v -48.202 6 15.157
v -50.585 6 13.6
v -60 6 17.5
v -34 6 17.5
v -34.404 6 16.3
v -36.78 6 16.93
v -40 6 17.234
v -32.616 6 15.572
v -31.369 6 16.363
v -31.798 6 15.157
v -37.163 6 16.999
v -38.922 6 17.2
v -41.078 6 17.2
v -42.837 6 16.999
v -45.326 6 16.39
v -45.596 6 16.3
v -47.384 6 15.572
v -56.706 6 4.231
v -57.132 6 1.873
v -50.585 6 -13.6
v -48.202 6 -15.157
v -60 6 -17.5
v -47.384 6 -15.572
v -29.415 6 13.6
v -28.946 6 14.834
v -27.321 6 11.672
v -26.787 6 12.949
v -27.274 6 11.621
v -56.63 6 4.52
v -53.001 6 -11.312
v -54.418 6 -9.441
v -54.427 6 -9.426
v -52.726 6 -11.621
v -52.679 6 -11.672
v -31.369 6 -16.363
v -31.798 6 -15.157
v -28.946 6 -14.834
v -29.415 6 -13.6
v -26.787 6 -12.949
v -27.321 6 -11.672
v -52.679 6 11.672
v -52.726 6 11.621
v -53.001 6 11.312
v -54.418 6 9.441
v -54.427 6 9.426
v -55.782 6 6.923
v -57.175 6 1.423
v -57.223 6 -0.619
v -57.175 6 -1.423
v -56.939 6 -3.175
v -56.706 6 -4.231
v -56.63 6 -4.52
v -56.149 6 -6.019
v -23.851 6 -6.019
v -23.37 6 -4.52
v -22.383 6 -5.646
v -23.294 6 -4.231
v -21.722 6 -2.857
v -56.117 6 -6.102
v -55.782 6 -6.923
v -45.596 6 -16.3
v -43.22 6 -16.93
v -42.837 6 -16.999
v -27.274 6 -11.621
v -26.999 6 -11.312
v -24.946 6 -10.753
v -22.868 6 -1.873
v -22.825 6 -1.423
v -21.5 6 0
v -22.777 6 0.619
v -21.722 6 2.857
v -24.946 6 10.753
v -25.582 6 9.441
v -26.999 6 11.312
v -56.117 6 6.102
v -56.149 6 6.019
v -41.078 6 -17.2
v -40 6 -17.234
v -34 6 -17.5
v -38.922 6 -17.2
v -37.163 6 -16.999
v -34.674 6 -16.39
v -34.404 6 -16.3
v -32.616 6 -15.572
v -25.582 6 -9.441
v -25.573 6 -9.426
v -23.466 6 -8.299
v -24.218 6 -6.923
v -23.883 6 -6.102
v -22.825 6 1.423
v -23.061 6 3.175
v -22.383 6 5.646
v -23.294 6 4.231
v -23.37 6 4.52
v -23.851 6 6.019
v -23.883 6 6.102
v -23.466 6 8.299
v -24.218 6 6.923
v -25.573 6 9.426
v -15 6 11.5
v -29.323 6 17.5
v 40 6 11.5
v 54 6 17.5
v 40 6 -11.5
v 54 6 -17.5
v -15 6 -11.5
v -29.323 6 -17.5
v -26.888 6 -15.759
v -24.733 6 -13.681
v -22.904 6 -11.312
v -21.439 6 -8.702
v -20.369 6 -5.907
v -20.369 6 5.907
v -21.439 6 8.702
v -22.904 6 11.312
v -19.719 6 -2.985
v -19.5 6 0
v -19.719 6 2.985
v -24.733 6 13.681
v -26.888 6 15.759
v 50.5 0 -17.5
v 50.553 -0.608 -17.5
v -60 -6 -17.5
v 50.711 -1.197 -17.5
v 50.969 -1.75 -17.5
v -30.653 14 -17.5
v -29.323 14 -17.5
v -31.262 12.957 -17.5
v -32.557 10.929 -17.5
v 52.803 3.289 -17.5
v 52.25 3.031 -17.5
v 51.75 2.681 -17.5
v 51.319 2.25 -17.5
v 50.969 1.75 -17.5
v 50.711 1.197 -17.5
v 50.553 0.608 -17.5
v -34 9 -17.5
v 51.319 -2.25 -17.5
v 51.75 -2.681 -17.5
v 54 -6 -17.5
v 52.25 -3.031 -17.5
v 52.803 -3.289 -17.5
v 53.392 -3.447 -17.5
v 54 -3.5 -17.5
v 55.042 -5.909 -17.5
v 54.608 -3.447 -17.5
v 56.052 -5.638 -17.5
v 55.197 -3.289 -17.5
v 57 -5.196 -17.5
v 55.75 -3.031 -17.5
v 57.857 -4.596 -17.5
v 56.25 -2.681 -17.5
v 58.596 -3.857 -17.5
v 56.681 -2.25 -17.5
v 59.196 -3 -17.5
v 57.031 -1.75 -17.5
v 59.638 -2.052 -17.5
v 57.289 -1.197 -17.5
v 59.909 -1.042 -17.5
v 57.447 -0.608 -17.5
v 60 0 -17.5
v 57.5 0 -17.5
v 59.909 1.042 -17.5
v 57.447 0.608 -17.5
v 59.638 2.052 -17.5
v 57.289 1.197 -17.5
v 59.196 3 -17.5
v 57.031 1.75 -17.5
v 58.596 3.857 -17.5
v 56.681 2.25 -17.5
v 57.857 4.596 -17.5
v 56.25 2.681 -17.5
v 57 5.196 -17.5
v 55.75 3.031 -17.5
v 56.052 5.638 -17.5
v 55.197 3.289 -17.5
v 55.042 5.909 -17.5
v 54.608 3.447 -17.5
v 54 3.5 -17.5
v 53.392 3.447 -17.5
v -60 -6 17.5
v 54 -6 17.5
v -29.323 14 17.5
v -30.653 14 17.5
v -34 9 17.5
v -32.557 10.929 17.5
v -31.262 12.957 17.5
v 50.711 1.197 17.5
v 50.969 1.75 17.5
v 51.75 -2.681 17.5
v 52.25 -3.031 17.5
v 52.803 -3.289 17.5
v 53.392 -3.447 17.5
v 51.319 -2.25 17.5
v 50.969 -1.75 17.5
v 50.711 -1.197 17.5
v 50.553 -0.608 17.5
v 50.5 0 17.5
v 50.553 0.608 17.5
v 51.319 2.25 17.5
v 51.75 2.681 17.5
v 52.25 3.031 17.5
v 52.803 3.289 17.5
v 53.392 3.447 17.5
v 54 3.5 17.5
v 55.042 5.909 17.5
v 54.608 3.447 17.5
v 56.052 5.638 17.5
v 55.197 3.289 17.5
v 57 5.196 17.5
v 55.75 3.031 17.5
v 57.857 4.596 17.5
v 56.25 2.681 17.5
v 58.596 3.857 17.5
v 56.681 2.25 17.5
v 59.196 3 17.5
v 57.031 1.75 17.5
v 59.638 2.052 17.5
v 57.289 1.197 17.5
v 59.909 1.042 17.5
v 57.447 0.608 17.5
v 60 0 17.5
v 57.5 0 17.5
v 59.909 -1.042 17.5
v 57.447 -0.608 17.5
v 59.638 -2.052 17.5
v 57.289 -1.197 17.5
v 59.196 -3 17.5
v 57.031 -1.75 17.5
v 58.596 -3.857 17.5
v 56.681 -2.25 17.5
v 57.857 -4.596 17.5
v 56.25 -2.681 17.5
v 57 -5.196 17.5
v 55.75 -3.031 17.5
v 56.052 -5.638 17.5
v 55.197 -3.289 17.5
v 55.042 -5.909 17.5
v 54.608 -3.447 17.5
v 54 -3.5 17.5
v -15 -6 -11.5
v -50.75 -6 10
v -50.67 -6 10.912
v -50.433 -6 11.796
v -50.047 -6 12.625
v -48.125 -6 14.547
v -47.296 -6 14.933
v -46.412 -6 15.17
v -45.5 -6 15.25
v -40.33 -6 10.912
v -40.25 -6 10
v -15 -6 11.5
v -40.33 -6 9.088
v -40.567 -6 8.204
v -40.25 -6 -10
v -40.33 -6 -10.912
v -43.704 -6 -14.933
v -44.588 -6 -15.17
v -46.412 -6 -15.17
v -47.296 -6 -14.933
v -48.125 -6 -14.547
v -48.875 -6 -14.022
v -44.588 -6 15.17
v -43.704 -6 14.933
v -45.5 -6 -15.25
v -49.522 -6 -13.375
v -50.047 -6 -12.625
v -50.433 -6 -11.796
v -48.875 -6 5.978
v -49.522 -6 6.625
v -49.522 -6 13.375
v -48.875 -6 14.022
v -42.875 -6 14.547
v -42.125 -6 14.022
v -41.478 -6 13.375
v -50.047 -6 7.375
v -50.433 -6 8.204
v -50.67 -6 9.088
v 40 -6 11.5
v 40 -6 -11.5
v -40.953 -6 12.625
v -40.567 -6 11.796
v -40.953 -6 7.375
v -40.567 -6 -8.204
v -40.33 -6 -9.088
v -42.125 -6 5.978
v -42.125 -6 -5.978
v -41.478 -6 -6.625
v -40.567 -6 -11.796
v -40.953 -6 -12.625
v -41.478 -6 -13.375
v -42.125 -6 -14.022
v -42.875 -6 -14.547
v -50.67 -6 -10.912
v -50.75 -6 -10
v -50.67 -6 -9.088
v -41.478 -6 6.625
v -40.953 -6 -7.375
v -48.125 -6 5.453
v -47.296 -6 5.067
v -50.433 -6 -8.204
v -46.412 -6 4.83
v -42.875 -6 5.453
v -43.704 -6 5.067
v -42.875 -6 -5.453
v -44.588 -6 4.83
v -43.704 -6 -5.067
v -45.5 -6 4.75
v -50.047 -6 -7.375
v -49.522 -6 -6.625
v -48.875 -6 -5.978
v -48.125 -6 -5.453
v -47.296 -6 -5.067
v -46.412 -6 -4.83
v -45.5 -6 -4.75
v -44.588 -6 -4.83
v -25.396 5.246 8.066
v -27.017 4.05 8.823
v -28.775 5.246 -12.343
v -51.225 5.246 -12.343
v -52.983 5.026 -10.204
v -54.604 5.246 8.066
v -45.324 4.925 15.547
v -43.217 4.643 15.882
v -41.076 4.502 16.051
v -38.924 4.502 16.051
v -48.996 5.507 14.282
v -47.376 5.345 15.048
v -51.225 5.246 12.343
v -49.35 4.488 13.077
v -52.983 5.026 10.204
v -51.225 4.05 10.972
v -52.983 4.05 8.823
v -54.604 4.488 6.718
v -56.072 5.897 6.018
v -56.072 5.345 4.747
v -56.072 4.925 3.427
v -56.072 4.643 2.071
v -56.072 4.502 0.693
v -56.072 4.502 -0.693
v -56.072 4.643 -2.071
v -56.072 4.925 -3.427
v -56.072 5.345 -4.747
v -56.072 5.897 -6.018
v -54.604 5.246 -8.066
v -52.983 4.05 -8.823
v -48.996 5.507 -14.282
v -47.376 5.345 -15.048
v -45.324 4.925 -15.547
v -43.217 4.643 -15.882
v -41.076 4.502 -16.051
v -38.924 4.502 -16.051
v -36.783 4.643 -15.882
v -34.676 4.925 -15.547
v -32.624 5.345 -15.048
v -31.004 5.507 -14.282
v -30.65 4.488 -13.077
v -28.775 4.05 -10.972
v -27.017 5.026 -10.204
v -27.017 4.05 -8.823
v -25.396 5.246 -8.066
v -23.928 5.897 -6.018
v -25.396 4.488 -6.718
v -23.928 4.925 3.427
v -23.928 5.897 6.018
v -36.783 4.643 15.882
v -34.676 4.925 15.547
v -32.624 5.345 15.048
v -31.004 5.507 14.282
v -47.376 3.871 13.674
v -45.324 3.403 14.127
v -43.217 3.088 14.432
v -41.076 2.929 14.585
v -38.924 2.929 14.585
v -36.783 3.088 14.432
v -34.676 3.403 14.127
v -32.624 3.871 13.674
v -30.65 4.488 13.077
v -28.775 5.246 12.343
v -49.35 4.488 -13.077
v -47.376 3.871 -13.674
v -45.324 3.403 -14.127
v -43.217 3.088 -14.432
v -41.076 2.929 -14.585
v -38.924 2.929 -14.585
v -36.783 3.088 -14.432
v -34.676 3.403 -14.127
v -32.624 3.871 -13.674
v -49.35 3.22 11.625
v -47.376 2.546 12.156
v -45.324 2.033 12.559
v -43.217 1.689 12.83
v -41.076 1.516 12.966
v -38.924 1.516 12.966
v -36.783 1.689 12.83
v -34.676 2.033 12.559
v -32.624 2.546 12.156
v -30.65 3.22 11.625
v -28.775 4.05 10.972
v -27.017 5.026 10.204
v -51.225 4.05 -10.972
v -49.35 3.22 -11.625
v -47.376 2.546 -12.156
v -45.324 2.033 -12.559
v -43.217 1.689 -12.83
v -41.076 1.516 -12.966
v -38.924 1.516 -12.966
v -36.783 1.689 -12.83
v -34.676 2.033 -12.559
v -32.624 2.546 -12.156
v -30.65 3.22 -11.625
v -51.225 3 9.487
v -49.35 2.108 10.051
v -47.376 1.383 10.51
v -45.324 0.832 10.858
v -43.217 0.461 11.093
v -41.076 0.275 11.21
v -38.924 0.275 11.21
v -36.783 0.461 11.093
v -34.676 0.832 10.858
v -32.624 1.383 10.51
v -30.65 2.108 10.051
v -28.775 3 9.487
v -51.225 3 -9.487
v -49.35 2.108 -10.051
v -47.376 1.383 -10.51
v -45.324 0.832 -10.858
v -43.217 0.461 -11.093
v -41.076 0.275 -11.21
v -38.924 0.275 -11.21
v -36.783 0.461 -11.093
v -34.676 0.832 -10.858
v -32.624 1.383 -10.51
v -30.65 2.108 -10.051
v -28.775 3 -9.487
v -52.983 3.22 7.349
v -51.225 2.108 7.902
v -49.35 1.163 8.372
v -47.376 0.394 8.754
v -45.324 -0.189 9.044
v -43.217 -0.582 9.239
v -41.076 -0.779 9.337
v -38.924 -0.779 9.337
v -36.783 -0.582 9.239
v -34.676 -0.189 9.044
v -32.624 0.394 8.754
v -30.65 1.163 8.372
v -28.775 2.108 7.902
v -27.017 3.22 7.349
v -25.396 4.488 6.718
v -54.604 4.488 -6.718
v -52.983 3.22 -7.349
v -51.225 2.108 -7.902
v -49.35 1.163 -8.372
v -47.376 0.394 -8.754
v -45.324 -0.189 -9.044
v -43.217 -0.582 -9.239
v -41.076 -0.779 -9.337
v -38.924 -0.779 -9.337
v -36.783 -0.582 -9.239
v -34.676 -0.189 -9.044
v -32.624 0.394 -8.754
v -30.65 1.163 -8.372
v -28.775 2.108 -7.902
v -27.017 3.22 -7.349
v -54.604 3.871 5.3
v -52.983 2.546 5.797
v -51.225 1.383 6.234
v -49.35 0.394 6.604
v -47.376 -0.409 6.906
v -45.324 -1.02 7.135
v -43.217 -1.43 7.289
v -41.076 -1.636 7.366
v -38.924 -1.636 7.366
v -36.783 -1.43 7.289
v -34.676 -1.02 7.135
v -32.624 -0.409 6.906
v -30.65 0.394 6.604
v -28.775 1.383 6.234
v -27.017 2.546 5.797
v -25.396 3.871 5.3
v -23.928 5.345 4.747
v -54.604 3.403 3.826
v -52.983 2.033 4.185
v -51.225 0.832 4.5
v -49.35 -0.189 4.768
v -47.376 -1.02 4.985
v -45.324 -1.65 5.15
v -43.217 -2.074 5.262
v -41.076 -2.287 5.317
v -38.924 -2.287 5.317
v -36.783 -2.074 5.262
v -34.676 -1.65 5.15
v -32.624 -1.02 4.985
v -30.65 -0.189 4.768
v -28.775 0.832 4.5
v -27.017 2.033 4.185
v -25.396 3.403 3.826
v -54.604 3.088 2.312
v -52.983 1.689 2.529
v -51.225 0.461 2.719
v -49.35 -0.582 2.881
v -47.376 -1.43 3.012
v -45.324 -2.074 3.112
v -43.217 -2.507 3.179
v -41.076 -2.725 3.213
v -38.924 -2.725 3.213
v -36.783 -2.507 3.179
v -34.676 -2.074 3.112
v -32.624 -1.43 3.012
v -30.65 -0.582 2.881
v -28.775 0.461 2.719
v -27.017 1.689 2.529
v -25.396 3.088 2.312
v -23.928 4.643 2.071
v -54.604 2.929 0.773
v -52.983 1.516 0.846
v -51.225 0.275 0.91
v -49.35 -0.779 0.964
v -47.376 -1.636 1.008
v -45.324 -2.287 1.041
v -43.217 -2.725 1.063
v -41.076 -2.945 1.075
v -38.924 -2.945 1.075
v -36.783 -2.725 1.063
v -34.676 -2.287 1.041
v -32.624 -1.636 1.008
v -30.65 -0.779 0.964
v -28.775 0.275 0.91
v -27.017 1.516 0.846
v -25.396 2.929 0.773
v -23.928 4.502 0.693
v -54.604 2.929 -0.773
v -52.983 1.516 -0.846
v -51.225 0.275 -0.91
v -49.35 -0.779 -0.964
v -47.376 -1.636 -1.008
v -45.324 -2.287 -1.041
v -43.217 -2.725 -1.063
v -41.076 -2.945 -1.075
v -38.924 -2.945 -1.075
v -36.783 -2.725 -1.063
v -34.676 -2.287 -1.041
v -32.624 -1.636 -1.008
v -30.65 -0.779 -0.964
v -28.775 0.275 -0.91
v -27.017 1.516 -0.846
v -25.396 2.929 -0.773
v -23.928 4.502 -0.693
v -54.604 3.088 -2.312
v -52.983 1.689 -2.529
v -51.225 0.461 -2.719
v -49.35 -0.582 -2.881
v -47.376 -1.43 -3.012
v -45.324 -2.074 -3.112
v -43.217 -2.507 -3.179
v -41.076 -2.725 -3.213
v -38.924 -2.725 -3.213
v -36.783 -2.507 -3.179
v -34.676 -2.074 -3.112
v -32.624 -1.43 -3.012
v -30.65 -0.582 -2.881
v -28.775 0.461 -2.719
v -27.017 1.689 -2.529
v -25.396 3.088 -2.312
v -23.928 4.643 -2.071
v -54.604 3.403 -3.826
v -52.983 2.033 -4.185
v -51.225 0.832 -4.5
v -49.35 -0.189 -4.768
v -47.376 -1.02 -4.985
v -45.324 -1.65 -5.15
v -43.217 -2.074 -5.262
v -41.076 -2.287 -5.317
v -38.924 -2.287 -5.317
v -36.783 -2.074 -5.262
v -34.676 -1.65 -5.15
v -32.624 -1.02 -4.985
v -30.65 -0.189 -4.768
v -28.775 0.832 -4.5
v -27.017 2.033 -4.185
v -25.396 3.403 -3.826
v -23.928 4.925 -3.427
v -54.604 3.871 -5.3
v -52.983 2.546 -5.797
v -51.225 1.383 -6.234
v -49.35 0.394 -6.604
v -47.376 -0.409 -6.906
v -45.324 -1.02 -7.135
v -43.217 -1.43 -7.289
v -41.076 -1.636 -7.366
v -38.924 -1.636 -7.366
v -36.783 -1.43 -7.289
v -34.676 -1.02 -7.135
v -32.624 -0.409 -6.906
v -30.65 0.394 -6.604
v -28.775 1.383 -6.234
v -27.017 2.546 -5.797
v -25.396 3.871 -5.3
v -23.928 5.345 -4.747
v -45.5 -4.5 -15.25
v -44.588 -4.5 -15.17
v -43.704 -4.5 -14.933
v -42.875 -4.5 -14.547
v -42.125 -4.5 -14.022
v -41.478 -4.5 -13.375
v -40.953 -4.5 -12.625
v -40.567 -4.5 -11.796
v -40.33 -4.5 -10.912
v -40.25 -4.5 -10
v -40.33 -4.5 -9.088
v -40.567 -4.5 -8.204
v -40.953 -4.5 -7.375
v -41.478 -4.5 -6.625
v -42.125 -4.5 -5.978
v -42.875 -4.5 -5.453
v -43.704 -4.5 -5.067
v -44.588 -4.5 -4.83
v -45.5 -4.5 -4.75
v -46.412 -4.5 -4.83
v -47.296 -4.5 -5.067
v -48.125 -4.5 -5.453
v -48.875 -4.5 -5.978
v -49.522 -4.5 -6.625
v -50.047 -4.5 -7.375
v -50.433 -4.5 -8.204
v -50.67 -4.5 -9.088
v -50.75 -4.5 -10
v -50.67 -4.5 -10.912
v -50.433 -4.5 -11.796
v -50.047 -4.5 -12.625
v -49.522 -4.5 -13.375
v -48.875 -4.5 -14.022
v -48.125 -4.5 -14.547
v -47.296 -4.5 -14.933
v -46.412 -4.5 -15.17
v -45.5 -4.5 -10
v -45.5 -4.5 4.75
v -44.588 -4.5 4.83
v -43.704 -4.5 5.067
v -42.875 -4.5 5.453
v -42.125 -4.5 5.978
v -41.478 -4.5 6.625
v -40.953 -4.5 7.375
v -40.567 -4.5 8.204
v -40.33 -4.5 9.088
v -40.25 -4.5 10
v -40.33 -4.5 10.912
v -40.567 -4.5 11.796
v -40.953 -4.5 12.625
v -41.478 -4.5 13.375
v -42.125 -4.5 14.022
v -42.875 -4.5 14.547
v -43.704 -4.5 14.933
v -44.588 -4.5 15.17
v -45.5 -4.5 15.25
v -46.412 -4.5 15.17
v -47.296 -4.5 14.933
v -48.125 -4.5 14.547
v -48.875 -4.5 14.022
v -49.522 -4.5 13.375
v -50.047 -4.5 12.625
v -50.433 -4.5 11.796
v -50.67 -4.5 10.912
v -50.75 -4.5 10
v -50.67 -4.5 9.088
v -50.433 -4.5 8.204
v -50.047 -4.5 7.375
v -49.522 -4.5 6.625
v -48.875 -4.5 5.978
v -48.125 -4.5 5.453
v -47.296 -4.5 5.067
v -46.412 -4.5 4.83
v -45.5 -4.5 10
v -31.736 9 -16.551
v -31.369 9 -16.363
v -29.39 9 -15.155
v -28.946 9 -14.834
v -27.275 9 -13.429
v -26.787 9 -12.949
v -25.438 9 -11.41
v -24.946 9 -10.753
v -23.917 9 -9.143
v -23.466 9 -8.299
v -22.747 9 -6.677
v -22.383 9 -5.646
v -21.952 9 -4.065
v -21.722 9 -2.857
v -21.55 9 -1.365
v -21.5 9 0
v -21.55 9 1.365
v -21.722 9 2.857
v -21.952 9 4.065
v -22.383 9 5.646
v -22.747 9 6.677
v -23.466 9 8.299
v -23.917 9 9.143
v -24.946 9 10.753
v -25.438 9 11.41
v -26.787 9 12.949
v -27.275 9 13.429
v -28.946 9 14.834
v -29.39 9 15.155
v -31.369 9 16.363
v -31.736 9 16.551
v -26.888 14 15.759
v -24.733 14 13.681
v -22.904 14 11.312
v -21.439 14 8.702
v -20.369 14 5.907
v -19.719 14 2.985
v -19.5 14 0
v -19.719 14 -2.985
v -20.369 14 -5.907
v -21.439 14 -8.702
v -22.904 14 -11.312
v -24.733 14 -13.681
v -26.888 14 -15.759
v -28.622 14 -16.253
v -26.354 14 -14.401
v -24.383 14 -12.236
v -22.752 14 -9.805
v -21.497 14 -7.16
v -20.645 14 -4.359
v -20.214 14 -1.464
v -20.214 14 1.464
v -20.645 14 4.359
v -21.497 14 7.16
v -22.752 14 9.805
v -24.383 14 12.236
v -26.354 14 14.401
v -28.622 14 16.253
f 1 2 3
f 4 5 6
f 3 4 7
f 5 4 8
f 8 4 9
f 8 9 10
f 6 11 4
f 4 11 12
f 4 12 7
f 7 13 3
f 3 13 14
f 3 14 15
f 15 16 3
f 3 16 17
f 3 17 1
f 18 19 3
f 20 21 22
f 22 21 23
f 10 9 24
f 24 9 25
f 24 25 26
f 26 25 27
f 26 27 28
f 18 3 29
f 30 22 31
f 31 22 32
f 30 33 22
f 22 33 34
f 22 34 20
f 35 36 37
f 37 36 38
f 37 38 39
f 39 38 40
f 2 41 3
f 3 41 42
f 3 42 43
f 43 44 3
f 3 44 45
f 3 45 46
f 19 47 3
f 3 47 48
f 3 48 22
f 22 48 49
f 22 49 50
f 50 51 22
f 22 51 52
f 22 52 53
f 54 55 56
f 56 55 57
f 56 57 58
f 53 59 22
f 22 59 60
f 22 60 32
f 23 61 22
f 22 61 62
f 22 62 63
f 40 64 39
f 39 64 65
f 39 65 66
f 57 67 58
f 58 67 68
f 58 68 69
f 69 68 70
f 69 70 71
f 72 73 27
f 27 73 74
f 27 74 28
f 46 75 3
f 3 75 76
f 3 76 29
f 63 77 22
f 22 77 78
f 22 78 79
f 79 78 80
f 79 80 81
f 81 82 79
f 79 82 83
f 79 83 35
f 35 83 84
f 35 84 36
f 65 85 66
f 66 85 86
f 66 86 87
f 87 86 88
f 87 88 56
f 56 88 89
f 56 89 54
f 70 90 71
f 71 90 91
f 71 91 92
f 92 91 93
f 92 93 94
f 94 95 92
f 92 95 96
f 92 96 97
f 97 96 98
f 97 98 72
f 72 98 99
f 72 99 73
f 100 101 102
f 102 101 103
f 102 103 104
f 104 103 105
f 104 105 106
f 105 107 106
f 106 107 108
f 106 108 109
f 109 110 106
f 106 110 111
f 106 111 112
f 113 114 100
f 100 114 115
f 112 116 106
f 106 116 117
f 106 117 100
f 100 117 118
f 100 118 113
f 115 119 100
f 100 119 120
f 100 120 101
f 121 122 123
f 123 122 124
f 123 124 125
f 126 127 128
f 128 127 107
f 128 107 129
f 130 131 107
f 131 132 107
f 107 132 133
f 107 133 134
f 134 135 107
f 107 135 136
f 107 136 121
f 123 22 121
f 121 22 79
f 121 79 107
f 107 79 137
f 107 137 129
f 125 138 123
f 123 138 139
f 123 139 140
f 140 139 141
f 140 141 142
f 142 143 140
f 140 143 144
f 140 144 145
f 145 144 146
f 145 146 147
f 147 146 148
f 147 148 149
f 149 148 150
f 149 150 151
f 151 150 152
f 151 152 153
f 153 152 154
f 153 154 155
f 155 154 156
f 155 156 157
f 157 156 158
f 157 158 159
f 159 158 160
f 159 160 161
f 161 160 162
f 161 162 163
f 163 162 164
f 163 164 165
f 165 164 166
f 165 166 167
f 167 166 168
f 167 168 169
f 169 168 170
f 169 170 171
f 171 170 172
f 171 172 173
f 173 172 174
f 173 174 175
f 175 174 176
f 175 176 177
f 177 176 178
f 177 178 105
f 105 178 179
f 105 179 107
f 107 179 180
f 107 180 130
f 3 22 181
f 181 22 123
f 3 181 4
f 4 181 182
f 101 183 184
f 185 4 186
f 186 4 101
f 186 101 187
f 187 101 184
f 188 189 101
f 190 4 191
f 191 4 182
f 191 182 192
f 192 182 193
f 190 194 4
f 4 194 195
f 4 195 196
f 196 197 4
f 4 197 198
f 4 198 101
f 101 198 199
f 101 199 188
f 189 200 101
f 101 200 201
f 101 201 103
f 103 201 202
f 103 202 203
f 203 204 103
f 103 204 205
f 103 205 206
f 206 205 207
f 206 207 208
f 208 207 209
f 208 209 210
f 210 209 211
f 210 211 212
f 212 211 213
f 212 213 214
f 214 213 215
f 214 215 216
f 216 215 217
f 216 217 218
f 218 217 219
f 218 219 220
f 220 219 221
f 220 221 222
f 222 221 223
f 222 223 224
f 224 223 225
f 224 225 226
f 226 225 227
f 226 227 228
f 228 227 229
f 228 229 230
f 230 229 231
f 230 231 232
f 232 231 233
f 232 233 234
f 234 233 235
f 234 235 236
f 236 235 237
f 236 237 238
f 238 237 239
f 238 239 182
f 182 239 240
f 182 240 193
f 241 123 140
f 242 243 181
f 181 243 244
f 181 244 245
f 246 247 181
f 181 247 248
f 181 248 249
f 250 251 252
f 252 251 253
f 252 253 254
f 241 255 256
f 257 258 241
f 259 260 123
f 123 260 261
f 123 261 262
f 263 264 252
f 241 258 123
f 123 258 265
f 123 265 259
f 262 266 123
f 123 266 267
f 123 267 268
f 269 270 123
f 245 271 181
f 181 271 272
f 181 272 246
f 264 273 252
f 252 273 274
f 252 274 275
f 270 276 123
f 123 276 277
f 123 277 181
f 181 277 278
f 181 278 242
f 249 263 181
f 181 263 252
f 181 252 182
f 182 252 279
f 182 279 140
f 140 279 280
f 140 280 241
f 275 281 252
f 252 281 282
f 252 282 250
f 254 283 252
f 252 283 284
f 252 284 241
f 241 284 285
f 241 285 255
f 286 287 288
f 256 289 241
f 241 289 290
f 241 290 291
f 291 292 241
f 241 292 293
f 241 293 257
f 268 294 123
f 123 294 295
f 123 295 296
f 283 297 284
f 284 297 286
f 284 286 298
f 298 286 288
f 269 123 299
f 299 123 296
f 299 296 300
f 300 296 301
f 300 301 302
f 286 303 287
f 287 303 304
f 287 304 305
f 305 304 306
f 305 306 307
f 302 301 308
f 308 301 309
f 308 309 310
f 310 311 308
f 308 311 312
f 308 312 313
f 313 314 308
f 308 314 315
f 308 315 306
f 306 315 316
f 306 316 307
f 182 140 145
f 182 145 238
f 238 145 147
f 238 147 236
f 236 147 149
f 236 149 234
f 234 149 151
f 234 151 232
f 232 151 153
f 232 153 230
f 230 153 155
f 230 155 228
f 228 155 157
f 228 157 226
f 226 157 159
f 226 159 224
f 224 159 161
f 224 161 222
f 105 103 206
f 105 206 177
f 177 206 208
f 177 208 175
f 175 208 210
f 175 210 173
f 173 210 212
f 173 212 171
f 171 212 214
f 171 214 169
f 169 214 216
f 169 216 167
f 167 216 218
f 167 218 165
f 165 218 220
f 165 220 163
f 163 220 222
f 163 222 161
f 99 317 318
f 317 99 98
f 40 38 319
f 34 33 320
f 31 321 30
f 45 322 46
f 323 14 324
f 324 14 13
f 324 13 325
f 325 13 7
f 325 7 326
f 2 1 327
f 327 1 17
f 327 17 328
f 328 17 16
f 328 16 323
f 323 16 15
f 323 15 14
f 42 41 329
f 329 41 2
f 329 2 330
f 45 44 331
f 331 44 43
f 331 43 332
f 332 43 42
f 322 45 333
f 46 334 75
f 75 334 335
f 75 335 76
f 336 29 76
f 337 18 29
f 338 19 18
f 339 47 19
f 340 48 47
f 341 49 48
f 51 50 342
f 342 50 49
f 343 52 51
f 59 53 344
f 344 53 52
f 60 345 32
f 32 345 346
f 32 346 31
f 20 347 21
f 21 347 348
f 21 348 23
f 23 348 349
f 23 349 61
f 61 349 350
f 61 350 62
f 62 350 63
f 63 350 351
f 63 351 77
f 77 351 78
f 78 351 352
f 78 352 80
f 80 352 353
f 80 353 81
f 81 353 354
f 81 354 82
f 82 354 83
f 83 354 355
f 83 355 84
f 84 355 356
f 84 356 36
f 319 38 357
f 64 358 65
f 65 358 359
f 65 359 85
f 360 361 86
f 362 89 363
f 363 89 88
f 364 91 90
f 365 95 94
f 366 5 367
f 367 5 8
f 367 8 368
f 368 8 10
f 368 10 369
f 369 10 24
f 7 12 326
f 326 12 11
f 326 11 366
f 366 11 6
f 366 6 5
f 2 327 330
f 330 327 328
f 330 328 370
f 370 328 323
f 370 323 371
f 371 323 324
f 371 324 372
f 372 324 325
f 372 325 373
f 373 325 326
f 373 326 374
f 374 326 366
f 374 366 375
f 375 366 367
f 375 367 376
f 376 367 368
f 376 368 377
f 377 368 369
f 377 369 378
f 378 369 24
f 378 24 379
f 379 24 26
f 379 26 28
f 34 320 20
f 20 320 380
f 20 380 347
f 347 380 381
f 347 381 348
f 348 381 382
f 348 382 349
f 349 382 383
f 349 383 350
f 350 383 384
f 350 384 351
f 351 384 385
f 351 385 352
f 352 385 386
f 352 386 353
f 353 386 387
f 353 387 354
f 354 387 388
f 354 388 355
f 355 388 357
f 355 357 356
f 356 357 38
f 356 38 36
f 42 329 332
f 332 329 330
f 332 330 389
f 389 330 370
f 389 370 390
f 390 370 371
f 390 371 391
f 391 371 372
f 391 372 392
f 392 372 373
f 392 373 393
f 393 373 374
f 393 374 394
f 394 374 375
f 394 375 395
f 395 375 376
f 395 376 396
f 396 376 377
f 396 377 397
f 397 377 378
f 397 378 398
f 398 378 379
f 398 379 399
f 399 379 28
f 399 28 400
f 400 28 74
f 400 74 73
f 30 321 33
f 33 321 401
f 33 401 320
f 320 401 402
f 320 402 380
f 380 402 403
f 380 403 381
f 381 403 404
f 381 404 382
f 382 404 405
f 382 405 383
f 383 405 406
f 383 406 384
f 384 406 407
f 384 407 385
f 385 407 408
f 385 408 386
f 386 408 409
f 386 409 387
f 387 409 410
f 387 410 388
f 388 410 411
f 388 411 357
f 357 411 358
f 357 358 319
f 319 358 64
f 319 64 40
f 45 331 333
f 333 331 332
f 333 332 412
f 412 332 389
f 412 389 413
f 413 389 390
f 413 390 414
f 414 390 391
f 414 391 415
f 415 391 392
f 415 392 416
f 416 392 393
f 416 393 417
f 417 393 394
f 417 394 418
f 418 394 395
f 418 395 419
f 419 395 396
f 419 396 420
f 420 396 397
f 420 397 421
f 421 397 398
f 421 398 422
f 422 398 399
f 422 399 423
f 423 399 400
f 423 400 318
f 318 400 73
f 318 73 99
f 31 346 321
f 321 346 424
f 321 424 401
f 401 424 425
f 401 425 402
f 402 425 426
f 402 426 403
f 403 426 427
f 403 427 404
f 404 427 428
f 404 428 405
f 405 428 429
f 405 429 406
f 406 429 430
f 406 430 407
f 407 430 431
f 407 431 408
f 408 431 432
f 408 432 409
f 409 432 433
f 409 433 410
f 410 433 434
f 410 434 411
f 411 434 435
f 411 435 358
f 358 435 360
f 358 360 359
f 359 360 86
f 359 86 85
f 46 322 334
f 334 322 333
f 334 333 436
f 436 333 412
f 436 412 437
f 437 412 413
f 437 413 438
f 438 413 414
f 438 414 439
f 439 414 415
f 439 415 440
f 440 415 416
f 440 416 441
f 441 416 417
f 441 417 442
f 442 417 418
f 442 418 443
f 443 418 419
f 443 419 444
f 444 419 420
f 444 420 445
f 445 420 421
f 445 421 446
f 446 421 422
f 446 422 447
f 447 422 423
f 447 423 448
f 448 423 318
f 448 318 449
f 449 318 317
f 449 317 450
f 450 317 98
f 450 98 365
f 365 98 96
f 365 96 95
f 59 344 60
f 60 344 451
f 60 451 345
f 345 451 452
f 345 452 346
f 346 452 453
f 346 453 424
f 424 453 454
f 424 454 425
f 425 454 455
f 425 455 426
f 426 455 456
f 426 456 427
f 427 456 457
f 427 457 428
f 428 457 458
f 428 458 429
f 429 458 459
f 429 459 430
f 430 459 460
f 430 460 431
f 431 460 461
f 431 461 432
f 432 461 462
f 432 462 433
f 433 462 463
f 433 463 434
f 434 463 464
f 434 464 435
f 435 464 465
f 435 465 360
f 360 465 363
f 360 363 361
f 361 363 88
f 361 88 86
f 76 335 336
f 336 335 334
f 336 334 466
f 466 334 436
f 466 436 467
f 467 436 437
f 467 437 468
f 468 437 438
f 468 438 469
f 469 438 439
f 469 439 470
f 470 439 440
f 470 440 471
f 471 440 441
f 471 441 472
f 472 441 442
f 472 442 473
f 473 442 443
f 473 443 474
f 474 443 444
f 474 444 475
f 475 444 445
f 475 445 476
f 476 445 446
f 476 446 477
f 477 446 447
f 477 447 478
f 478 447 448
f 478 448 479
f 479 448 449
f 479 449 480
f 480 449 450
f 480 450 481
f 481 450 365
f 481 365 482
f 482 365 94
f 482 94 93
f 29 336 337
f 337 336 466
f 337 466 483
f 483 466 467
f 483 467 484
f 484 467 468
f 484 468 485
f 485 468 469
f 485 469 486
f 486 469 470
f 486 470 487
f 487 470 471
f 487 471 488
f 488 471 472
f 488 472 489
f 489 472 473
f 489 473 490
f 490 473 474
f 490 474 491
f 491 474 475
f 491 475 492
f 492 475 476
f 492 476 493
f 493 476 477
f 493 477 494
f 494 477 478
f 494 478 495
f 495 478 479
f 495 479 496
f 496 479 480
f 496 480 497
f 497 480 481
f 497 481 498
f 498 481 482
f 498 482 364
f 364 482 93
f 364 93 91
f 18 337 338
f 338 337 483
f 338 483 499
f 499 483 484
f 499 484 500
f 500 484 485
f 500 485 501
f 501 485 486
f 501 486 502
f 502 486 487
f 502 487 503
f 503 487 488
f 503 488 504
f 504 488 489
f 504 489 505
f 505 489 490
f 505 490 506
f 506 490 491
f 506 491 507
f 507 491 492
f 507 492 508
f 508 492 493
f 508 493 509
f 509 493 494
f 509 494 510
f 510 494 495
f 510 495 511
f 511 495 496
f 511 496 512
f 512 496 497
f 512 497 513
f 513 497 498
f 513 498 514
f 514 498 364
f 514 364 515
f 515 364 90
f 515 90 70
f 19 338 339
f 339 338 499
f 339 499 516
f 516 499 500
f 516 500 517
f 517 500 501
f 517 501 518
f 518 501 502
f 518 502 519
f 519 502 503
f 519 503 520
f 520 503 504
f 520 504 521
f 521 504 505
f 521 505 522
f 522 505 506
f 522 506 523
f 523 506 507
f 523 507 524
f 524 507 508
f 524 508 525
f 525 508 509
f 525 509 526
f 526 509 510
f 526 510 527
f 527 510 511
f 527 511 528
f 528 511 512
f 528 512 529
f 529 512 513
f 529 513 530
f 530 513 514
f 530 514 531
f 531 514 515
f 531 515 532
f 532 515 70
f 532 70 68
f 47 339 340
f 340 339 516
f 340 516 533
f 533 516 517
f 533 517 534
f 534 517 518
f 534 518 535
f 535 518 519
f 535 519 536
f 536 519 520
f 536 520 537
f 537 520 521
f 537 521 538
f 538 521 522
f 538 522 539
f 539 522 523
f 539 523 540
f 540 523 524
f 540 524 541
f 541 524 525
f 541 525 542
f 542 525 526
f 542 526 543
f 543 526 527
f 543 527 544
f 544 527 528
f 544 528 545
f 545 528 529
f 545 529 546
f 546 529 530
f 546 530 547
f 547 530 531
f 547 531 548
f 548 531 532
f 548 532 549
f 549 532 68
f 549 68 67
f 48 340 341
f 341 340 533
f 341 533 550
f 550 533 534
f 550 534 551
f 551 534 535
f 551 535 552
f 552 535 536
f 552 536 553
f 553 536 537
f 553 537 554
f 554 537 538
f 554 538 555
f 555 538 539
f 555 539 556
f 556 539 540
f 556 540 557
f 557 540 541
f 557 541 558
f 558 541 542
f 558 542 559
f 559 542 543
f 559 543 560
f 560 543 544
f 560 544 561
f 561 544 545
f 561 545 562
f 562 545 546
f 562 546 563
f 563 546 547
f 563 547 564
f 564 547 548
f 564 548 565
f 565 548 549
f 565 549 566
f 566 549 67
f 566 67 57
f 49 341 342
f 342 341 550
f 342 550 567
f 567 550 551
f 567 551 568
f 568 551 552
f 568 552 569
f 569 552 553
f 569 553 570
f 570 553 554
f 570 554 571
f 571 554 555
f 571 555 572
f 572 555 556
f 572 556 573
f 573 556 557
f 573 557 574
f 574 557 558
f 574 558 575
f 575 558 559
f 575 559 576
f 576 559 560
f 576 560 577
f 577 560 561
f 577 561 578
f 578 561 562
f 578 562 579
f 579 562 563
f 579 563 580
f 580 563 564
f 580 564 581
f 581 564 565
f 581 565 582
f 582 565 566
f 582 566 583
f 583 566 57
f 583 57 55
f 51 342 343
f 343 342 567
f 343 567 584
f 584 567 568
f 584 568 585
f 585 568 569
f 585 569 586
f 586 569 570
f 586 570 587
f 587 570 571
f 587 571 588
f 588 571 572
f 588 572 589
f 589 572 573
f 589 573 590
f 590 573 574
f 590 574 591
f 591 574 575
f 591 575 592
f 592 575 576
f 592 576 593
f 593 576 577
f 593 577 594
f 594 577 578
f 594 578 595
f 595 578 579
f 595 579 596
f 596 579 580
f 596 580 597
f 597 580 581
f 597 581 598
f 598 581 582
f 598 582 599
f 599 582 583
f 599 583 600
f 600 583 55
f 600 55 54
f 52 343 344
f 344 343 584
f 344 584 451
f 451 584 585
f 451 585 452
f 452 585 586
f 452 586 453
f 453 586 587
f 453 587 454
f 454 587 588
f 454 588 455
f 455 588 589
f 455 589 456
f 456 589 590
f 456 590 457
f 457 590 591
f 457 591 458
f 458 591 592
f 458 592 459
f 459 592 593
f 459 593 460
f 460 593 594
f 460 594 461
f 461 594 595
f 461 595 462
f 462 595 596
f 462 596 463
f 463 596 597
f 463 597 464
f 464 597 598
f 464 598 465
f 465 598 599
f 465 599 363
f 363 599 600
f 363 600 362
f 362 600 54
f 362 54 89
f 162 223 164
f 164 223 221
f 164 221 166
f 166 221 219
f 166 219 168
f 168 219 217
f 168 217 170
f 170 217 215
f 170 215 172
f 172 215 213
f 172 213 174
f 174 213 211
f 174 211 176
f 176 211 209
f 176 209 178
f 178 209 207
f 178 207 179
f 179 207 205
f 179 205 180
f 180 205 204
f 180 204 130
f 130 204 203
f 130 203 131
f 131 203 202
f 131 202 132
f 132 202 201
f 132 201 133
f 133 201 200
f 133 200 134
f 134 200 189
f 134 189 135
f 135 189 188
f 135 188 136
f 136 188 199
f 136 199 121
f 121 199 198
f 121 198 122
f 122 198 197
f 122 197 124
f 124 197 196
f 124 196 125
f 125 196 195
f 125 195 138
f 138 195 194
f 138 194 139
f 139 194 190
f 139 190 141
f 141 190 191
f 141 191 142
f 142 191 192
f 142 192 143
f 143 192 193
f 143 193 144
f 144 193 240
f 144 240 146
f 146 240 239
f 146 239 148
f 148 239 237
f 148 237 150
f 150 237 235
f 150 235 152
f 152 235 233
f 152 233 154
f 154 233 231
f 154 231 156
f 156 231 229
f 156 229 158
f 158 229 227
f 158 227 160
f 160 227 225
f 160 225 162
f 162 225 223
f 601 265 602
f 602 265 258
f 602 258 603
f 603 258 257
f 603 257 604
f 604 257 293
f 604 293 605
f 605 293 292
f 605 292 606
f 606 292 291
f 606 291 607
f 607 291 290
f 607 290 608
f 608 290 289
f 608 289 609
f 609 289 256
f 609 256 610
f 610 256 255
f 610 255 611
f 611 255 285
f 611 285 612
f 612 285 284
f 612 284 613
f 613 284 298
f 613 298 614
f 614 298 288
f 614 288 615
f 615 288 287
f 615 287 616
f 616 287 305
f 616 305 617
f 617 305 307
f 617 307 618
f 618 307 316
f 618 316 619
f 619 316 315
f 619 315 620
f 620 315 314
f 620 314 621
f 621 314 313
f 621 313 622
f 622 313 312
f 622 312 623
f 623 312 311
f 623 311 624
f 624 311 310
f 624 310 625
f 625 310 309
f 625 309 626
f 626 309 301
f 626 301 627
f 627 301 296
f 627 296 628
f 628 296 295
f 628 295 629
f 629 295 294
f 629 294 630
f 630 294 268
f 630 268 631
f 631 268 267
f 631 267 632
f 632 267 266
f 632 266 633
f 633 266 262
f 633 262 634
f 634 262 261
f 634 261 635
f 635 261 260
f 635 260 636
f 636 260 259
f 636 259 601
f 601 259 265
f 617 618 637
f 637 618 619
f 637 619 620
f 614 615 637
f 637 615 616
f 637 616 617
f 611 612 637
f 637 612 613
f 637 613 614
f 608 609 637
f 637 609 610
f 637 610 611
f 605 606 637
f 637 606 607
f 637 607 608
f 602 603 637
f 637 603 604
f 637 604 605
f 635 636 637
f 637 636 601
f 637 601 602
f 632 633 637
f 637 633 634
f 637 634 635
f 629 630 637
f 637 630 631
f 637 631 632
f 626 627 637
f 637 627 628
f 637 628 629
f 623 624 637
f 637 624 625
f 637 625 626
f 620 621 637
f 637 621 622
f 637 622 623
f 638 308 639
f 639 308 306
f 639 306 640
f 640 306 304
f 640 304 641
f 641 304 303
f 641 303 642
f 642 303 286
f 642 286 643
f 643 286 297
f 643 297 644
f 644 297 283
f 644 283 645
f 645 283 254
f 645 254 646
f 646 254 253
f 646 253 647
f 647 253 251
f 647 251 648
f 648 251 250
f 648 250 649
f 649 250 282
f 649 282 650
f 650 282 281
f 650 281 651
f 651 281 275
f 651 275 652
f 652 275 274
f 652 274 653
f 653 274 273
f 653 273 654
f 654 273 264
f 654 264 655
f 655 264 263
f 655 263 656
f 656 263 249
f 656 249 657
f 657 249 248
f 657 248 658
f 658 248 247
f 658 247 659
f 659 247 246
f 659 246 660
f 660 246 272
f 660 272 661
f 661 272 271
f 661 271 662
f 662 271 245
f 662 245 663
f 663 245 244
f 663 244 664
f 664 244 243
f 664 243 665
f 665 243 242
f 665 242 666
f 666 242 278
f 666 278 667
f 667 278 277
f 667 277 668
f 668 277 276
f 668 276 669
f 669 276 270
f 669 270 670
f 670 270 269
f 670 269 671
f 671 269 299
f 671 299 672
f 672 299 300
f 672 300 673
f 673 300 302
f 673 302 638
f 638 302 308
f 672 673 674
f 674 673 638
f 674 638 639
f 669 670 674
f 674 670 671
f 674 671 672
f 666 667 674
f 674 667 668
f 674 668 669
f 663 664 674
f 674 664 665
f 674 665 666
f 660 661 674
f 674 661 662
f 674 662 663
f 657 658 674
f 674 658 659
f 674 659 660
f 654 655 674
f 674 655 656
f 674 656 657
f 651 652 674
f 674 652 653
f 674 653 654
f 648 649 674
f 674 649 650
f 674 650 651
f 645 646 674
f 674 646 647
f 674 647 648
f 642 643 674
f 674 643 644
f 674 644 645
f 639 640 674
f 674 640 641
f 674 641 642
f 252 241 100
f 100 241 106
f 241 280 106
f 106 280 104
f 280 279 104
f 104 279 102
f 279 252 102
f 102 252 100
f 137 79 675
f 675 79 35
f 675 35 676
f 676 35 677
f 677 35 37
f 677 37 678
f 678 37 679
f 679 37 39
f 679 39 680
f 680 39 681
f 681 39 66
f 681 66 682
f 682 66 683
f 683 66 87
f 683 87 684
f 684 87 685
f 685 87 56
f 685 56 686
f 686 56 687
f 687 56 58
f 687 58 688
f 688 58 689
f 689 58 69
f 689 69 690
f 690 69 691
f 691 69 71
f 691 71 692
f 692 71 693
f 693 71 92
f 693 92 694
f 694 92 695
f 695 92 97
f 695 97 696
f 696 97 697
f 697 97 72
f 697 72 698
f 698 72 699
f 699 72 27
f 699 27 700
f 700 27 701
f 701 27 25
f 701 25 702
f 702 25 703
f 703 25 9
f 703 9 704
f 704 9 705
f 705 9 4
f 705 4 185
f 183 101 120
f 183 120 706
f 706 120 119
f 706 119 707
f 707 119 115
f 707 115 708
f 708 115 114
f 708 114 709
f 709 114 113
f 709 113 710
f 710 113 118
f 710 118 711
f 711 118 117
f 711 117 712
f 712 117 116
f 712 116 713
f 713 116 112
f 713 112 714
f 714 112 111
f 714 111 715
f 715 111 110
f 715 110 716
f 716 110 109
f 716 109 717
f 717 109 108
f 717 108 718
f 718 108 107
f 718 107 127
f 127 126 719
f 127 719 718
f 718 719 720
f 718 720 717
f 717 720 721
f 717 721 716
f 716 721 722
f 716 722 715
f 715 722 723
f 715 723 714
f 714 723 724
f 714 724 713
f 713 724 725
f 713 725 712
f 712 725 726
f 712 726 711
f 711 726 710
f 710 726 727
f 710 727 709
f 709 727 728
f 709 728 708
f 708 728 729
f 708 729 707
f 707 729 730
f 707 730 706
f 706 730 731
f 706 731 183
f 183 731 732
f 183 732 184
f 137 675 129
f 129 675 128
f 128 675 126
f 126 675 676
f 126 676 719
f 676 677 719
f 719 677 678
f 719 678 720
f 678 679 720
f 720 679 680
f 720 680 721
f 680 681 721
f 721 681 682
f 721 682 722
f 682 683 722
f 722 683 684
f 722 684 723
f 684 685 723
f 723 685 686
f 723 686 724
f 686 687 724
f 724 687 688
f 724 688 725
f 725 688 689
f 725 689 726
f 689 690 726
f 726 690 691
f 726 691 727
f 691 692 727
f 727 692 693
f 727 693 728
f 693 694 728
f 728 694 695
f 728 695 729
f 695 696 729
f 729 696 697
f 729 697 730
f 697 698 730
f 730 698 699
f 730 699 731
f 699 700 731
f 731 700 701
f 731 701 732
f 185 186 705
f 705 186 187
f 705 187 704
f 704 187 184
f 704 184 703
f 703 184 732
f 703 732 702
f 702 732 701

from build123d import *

# Parameters (mm, degrees)
SKETCH1_W             = 120
SKETCH1_H             = 35
BOSS_EXTRUDE1_DEPTH   = 6
FILLET1_R             = 6
F_6_0MM_DOWEL_HOLE1_D = 7
SKETCH5_R             = 5.25
CUT_EXTRUDE1_DEPTH    = 1.5
SKETCH6_W             = 55
SKETCH6_H             = 23
CUT_EXTRUDE2_DEPTH    = 64.641574462
BOSS_EXTRUDE4_DEPTH   = 8
CHAMFER1_SIZE         = 5
CHAMFER1_SIZE2        = 1.339745962


with BuildPart() as part:
    # Sketch1 → Boss-Extrude1 (new, symmetric)
    with BuildSketch(Plane(origin=(0, 0, 0), x_dir=(1, 0, 0), z_dir=(0, 1, 0))):
        Rectangle(SKETCH1_W, SKETCH1_H)
    extrude(amount=BOSS_EXTRUDE1_DEPTH, both=True)

    # Fillet1
    fillet1_edges = [part.edges().sort_by_distance(p)[0] for p in [
        (60, 6, 0),
        (60, -6, 0),
    ]]
    fillet(fillet1_edges, radius=FILLET1_R - 0.0001)  # a hair under: the kernel refuses the full size

    # Sketch2 → Cut-Revolve1 (revolve, cut)
    with BuildSketch(Plane.XY):
        with BuildLine():
            Line((-61, 18), (-19, 18))
            ThreePointArc((-19, 18), (-40, 39), (-61, 18))
        make_face()
    revolve(axis=Axis((-61, 18, 0), (1, 0, 0)), mode=Mode.SUBTRACT)

    # Ø6.0mm Dowel Hole1 (through all)
    with Locations(Plane.XY.offset(17.5)):
        with Locations((54, 0)):
            Hole(F_6_0MM_DOWEL_HOLE1_D / 2)

    # Sketch5 → Cut-Extrude1 (cut)
    with BuildSketch(Plane.XZ.offset(6)):
        with Locations(Location((-45.5, 10, 0), (0, 0, 270))):
            Circle(SKETCH5_R)
        with Locations(Location((-45.5, -10, 0), (0, 0, 90))):
            Circle(SKETCH5_R)
    extrude(amount=-CUT_EXTRUDE1_DEPTH, mode=Mode.SUBTRACT)

    # Sketch6 → Cut-Extrude2 (cut, through all)
    with BuildSketch(Plane(origin=(0, 6, 0), x_dir=(1, 0, 0), z_dir=(0, 1, 0))):
        with Locations((12.5, 0)):
            Rectangle(SKETCH6_W, SKETCH6_H)
    extrude(amount=-CUT_EXTRUDE2_DEPTH, mode=Mode.SUBTRACT)

    # Sketch8 → Boss-Extrude4 (add)
    with BuildSketch(Plane(origin=(0, 6, 0), x_dir=(1, 0, 0), z_dir=(0, 1, 0))):
        with BuildLine():
            Line((-34, 17.5), (-29.322921748, 17.5))
            ThreePointArc((-29.322921748, 17.5), (-19.5, 0), (-29.322921748, -17.5))
            Line((-29.322921748, -17.5), (-34, -17.5))
            ThreePointArc((-34, -17.5), (-21.5, 0), (-34, 17.5))
        make_face()
    extrude(amount=BOSS_EXTRUDE4_DEPTH)

    # Chamfer1
    chamfer1_edges = [part.edges().sort_by_distance(p)[0] for p in [
        (-21.5, 14, 0),
    ]]
    chamfer1_side = [part.faces().sort_by_distance(p)[0] for p in [
        (-21.5, 10, 0),
    ]]
    chamfer(chamfer1_edges, length=CHAMFER1_SIZE, length2=CHAMFER1_SIZE2, reference=chamfer1_side[0])


solid = part.part
